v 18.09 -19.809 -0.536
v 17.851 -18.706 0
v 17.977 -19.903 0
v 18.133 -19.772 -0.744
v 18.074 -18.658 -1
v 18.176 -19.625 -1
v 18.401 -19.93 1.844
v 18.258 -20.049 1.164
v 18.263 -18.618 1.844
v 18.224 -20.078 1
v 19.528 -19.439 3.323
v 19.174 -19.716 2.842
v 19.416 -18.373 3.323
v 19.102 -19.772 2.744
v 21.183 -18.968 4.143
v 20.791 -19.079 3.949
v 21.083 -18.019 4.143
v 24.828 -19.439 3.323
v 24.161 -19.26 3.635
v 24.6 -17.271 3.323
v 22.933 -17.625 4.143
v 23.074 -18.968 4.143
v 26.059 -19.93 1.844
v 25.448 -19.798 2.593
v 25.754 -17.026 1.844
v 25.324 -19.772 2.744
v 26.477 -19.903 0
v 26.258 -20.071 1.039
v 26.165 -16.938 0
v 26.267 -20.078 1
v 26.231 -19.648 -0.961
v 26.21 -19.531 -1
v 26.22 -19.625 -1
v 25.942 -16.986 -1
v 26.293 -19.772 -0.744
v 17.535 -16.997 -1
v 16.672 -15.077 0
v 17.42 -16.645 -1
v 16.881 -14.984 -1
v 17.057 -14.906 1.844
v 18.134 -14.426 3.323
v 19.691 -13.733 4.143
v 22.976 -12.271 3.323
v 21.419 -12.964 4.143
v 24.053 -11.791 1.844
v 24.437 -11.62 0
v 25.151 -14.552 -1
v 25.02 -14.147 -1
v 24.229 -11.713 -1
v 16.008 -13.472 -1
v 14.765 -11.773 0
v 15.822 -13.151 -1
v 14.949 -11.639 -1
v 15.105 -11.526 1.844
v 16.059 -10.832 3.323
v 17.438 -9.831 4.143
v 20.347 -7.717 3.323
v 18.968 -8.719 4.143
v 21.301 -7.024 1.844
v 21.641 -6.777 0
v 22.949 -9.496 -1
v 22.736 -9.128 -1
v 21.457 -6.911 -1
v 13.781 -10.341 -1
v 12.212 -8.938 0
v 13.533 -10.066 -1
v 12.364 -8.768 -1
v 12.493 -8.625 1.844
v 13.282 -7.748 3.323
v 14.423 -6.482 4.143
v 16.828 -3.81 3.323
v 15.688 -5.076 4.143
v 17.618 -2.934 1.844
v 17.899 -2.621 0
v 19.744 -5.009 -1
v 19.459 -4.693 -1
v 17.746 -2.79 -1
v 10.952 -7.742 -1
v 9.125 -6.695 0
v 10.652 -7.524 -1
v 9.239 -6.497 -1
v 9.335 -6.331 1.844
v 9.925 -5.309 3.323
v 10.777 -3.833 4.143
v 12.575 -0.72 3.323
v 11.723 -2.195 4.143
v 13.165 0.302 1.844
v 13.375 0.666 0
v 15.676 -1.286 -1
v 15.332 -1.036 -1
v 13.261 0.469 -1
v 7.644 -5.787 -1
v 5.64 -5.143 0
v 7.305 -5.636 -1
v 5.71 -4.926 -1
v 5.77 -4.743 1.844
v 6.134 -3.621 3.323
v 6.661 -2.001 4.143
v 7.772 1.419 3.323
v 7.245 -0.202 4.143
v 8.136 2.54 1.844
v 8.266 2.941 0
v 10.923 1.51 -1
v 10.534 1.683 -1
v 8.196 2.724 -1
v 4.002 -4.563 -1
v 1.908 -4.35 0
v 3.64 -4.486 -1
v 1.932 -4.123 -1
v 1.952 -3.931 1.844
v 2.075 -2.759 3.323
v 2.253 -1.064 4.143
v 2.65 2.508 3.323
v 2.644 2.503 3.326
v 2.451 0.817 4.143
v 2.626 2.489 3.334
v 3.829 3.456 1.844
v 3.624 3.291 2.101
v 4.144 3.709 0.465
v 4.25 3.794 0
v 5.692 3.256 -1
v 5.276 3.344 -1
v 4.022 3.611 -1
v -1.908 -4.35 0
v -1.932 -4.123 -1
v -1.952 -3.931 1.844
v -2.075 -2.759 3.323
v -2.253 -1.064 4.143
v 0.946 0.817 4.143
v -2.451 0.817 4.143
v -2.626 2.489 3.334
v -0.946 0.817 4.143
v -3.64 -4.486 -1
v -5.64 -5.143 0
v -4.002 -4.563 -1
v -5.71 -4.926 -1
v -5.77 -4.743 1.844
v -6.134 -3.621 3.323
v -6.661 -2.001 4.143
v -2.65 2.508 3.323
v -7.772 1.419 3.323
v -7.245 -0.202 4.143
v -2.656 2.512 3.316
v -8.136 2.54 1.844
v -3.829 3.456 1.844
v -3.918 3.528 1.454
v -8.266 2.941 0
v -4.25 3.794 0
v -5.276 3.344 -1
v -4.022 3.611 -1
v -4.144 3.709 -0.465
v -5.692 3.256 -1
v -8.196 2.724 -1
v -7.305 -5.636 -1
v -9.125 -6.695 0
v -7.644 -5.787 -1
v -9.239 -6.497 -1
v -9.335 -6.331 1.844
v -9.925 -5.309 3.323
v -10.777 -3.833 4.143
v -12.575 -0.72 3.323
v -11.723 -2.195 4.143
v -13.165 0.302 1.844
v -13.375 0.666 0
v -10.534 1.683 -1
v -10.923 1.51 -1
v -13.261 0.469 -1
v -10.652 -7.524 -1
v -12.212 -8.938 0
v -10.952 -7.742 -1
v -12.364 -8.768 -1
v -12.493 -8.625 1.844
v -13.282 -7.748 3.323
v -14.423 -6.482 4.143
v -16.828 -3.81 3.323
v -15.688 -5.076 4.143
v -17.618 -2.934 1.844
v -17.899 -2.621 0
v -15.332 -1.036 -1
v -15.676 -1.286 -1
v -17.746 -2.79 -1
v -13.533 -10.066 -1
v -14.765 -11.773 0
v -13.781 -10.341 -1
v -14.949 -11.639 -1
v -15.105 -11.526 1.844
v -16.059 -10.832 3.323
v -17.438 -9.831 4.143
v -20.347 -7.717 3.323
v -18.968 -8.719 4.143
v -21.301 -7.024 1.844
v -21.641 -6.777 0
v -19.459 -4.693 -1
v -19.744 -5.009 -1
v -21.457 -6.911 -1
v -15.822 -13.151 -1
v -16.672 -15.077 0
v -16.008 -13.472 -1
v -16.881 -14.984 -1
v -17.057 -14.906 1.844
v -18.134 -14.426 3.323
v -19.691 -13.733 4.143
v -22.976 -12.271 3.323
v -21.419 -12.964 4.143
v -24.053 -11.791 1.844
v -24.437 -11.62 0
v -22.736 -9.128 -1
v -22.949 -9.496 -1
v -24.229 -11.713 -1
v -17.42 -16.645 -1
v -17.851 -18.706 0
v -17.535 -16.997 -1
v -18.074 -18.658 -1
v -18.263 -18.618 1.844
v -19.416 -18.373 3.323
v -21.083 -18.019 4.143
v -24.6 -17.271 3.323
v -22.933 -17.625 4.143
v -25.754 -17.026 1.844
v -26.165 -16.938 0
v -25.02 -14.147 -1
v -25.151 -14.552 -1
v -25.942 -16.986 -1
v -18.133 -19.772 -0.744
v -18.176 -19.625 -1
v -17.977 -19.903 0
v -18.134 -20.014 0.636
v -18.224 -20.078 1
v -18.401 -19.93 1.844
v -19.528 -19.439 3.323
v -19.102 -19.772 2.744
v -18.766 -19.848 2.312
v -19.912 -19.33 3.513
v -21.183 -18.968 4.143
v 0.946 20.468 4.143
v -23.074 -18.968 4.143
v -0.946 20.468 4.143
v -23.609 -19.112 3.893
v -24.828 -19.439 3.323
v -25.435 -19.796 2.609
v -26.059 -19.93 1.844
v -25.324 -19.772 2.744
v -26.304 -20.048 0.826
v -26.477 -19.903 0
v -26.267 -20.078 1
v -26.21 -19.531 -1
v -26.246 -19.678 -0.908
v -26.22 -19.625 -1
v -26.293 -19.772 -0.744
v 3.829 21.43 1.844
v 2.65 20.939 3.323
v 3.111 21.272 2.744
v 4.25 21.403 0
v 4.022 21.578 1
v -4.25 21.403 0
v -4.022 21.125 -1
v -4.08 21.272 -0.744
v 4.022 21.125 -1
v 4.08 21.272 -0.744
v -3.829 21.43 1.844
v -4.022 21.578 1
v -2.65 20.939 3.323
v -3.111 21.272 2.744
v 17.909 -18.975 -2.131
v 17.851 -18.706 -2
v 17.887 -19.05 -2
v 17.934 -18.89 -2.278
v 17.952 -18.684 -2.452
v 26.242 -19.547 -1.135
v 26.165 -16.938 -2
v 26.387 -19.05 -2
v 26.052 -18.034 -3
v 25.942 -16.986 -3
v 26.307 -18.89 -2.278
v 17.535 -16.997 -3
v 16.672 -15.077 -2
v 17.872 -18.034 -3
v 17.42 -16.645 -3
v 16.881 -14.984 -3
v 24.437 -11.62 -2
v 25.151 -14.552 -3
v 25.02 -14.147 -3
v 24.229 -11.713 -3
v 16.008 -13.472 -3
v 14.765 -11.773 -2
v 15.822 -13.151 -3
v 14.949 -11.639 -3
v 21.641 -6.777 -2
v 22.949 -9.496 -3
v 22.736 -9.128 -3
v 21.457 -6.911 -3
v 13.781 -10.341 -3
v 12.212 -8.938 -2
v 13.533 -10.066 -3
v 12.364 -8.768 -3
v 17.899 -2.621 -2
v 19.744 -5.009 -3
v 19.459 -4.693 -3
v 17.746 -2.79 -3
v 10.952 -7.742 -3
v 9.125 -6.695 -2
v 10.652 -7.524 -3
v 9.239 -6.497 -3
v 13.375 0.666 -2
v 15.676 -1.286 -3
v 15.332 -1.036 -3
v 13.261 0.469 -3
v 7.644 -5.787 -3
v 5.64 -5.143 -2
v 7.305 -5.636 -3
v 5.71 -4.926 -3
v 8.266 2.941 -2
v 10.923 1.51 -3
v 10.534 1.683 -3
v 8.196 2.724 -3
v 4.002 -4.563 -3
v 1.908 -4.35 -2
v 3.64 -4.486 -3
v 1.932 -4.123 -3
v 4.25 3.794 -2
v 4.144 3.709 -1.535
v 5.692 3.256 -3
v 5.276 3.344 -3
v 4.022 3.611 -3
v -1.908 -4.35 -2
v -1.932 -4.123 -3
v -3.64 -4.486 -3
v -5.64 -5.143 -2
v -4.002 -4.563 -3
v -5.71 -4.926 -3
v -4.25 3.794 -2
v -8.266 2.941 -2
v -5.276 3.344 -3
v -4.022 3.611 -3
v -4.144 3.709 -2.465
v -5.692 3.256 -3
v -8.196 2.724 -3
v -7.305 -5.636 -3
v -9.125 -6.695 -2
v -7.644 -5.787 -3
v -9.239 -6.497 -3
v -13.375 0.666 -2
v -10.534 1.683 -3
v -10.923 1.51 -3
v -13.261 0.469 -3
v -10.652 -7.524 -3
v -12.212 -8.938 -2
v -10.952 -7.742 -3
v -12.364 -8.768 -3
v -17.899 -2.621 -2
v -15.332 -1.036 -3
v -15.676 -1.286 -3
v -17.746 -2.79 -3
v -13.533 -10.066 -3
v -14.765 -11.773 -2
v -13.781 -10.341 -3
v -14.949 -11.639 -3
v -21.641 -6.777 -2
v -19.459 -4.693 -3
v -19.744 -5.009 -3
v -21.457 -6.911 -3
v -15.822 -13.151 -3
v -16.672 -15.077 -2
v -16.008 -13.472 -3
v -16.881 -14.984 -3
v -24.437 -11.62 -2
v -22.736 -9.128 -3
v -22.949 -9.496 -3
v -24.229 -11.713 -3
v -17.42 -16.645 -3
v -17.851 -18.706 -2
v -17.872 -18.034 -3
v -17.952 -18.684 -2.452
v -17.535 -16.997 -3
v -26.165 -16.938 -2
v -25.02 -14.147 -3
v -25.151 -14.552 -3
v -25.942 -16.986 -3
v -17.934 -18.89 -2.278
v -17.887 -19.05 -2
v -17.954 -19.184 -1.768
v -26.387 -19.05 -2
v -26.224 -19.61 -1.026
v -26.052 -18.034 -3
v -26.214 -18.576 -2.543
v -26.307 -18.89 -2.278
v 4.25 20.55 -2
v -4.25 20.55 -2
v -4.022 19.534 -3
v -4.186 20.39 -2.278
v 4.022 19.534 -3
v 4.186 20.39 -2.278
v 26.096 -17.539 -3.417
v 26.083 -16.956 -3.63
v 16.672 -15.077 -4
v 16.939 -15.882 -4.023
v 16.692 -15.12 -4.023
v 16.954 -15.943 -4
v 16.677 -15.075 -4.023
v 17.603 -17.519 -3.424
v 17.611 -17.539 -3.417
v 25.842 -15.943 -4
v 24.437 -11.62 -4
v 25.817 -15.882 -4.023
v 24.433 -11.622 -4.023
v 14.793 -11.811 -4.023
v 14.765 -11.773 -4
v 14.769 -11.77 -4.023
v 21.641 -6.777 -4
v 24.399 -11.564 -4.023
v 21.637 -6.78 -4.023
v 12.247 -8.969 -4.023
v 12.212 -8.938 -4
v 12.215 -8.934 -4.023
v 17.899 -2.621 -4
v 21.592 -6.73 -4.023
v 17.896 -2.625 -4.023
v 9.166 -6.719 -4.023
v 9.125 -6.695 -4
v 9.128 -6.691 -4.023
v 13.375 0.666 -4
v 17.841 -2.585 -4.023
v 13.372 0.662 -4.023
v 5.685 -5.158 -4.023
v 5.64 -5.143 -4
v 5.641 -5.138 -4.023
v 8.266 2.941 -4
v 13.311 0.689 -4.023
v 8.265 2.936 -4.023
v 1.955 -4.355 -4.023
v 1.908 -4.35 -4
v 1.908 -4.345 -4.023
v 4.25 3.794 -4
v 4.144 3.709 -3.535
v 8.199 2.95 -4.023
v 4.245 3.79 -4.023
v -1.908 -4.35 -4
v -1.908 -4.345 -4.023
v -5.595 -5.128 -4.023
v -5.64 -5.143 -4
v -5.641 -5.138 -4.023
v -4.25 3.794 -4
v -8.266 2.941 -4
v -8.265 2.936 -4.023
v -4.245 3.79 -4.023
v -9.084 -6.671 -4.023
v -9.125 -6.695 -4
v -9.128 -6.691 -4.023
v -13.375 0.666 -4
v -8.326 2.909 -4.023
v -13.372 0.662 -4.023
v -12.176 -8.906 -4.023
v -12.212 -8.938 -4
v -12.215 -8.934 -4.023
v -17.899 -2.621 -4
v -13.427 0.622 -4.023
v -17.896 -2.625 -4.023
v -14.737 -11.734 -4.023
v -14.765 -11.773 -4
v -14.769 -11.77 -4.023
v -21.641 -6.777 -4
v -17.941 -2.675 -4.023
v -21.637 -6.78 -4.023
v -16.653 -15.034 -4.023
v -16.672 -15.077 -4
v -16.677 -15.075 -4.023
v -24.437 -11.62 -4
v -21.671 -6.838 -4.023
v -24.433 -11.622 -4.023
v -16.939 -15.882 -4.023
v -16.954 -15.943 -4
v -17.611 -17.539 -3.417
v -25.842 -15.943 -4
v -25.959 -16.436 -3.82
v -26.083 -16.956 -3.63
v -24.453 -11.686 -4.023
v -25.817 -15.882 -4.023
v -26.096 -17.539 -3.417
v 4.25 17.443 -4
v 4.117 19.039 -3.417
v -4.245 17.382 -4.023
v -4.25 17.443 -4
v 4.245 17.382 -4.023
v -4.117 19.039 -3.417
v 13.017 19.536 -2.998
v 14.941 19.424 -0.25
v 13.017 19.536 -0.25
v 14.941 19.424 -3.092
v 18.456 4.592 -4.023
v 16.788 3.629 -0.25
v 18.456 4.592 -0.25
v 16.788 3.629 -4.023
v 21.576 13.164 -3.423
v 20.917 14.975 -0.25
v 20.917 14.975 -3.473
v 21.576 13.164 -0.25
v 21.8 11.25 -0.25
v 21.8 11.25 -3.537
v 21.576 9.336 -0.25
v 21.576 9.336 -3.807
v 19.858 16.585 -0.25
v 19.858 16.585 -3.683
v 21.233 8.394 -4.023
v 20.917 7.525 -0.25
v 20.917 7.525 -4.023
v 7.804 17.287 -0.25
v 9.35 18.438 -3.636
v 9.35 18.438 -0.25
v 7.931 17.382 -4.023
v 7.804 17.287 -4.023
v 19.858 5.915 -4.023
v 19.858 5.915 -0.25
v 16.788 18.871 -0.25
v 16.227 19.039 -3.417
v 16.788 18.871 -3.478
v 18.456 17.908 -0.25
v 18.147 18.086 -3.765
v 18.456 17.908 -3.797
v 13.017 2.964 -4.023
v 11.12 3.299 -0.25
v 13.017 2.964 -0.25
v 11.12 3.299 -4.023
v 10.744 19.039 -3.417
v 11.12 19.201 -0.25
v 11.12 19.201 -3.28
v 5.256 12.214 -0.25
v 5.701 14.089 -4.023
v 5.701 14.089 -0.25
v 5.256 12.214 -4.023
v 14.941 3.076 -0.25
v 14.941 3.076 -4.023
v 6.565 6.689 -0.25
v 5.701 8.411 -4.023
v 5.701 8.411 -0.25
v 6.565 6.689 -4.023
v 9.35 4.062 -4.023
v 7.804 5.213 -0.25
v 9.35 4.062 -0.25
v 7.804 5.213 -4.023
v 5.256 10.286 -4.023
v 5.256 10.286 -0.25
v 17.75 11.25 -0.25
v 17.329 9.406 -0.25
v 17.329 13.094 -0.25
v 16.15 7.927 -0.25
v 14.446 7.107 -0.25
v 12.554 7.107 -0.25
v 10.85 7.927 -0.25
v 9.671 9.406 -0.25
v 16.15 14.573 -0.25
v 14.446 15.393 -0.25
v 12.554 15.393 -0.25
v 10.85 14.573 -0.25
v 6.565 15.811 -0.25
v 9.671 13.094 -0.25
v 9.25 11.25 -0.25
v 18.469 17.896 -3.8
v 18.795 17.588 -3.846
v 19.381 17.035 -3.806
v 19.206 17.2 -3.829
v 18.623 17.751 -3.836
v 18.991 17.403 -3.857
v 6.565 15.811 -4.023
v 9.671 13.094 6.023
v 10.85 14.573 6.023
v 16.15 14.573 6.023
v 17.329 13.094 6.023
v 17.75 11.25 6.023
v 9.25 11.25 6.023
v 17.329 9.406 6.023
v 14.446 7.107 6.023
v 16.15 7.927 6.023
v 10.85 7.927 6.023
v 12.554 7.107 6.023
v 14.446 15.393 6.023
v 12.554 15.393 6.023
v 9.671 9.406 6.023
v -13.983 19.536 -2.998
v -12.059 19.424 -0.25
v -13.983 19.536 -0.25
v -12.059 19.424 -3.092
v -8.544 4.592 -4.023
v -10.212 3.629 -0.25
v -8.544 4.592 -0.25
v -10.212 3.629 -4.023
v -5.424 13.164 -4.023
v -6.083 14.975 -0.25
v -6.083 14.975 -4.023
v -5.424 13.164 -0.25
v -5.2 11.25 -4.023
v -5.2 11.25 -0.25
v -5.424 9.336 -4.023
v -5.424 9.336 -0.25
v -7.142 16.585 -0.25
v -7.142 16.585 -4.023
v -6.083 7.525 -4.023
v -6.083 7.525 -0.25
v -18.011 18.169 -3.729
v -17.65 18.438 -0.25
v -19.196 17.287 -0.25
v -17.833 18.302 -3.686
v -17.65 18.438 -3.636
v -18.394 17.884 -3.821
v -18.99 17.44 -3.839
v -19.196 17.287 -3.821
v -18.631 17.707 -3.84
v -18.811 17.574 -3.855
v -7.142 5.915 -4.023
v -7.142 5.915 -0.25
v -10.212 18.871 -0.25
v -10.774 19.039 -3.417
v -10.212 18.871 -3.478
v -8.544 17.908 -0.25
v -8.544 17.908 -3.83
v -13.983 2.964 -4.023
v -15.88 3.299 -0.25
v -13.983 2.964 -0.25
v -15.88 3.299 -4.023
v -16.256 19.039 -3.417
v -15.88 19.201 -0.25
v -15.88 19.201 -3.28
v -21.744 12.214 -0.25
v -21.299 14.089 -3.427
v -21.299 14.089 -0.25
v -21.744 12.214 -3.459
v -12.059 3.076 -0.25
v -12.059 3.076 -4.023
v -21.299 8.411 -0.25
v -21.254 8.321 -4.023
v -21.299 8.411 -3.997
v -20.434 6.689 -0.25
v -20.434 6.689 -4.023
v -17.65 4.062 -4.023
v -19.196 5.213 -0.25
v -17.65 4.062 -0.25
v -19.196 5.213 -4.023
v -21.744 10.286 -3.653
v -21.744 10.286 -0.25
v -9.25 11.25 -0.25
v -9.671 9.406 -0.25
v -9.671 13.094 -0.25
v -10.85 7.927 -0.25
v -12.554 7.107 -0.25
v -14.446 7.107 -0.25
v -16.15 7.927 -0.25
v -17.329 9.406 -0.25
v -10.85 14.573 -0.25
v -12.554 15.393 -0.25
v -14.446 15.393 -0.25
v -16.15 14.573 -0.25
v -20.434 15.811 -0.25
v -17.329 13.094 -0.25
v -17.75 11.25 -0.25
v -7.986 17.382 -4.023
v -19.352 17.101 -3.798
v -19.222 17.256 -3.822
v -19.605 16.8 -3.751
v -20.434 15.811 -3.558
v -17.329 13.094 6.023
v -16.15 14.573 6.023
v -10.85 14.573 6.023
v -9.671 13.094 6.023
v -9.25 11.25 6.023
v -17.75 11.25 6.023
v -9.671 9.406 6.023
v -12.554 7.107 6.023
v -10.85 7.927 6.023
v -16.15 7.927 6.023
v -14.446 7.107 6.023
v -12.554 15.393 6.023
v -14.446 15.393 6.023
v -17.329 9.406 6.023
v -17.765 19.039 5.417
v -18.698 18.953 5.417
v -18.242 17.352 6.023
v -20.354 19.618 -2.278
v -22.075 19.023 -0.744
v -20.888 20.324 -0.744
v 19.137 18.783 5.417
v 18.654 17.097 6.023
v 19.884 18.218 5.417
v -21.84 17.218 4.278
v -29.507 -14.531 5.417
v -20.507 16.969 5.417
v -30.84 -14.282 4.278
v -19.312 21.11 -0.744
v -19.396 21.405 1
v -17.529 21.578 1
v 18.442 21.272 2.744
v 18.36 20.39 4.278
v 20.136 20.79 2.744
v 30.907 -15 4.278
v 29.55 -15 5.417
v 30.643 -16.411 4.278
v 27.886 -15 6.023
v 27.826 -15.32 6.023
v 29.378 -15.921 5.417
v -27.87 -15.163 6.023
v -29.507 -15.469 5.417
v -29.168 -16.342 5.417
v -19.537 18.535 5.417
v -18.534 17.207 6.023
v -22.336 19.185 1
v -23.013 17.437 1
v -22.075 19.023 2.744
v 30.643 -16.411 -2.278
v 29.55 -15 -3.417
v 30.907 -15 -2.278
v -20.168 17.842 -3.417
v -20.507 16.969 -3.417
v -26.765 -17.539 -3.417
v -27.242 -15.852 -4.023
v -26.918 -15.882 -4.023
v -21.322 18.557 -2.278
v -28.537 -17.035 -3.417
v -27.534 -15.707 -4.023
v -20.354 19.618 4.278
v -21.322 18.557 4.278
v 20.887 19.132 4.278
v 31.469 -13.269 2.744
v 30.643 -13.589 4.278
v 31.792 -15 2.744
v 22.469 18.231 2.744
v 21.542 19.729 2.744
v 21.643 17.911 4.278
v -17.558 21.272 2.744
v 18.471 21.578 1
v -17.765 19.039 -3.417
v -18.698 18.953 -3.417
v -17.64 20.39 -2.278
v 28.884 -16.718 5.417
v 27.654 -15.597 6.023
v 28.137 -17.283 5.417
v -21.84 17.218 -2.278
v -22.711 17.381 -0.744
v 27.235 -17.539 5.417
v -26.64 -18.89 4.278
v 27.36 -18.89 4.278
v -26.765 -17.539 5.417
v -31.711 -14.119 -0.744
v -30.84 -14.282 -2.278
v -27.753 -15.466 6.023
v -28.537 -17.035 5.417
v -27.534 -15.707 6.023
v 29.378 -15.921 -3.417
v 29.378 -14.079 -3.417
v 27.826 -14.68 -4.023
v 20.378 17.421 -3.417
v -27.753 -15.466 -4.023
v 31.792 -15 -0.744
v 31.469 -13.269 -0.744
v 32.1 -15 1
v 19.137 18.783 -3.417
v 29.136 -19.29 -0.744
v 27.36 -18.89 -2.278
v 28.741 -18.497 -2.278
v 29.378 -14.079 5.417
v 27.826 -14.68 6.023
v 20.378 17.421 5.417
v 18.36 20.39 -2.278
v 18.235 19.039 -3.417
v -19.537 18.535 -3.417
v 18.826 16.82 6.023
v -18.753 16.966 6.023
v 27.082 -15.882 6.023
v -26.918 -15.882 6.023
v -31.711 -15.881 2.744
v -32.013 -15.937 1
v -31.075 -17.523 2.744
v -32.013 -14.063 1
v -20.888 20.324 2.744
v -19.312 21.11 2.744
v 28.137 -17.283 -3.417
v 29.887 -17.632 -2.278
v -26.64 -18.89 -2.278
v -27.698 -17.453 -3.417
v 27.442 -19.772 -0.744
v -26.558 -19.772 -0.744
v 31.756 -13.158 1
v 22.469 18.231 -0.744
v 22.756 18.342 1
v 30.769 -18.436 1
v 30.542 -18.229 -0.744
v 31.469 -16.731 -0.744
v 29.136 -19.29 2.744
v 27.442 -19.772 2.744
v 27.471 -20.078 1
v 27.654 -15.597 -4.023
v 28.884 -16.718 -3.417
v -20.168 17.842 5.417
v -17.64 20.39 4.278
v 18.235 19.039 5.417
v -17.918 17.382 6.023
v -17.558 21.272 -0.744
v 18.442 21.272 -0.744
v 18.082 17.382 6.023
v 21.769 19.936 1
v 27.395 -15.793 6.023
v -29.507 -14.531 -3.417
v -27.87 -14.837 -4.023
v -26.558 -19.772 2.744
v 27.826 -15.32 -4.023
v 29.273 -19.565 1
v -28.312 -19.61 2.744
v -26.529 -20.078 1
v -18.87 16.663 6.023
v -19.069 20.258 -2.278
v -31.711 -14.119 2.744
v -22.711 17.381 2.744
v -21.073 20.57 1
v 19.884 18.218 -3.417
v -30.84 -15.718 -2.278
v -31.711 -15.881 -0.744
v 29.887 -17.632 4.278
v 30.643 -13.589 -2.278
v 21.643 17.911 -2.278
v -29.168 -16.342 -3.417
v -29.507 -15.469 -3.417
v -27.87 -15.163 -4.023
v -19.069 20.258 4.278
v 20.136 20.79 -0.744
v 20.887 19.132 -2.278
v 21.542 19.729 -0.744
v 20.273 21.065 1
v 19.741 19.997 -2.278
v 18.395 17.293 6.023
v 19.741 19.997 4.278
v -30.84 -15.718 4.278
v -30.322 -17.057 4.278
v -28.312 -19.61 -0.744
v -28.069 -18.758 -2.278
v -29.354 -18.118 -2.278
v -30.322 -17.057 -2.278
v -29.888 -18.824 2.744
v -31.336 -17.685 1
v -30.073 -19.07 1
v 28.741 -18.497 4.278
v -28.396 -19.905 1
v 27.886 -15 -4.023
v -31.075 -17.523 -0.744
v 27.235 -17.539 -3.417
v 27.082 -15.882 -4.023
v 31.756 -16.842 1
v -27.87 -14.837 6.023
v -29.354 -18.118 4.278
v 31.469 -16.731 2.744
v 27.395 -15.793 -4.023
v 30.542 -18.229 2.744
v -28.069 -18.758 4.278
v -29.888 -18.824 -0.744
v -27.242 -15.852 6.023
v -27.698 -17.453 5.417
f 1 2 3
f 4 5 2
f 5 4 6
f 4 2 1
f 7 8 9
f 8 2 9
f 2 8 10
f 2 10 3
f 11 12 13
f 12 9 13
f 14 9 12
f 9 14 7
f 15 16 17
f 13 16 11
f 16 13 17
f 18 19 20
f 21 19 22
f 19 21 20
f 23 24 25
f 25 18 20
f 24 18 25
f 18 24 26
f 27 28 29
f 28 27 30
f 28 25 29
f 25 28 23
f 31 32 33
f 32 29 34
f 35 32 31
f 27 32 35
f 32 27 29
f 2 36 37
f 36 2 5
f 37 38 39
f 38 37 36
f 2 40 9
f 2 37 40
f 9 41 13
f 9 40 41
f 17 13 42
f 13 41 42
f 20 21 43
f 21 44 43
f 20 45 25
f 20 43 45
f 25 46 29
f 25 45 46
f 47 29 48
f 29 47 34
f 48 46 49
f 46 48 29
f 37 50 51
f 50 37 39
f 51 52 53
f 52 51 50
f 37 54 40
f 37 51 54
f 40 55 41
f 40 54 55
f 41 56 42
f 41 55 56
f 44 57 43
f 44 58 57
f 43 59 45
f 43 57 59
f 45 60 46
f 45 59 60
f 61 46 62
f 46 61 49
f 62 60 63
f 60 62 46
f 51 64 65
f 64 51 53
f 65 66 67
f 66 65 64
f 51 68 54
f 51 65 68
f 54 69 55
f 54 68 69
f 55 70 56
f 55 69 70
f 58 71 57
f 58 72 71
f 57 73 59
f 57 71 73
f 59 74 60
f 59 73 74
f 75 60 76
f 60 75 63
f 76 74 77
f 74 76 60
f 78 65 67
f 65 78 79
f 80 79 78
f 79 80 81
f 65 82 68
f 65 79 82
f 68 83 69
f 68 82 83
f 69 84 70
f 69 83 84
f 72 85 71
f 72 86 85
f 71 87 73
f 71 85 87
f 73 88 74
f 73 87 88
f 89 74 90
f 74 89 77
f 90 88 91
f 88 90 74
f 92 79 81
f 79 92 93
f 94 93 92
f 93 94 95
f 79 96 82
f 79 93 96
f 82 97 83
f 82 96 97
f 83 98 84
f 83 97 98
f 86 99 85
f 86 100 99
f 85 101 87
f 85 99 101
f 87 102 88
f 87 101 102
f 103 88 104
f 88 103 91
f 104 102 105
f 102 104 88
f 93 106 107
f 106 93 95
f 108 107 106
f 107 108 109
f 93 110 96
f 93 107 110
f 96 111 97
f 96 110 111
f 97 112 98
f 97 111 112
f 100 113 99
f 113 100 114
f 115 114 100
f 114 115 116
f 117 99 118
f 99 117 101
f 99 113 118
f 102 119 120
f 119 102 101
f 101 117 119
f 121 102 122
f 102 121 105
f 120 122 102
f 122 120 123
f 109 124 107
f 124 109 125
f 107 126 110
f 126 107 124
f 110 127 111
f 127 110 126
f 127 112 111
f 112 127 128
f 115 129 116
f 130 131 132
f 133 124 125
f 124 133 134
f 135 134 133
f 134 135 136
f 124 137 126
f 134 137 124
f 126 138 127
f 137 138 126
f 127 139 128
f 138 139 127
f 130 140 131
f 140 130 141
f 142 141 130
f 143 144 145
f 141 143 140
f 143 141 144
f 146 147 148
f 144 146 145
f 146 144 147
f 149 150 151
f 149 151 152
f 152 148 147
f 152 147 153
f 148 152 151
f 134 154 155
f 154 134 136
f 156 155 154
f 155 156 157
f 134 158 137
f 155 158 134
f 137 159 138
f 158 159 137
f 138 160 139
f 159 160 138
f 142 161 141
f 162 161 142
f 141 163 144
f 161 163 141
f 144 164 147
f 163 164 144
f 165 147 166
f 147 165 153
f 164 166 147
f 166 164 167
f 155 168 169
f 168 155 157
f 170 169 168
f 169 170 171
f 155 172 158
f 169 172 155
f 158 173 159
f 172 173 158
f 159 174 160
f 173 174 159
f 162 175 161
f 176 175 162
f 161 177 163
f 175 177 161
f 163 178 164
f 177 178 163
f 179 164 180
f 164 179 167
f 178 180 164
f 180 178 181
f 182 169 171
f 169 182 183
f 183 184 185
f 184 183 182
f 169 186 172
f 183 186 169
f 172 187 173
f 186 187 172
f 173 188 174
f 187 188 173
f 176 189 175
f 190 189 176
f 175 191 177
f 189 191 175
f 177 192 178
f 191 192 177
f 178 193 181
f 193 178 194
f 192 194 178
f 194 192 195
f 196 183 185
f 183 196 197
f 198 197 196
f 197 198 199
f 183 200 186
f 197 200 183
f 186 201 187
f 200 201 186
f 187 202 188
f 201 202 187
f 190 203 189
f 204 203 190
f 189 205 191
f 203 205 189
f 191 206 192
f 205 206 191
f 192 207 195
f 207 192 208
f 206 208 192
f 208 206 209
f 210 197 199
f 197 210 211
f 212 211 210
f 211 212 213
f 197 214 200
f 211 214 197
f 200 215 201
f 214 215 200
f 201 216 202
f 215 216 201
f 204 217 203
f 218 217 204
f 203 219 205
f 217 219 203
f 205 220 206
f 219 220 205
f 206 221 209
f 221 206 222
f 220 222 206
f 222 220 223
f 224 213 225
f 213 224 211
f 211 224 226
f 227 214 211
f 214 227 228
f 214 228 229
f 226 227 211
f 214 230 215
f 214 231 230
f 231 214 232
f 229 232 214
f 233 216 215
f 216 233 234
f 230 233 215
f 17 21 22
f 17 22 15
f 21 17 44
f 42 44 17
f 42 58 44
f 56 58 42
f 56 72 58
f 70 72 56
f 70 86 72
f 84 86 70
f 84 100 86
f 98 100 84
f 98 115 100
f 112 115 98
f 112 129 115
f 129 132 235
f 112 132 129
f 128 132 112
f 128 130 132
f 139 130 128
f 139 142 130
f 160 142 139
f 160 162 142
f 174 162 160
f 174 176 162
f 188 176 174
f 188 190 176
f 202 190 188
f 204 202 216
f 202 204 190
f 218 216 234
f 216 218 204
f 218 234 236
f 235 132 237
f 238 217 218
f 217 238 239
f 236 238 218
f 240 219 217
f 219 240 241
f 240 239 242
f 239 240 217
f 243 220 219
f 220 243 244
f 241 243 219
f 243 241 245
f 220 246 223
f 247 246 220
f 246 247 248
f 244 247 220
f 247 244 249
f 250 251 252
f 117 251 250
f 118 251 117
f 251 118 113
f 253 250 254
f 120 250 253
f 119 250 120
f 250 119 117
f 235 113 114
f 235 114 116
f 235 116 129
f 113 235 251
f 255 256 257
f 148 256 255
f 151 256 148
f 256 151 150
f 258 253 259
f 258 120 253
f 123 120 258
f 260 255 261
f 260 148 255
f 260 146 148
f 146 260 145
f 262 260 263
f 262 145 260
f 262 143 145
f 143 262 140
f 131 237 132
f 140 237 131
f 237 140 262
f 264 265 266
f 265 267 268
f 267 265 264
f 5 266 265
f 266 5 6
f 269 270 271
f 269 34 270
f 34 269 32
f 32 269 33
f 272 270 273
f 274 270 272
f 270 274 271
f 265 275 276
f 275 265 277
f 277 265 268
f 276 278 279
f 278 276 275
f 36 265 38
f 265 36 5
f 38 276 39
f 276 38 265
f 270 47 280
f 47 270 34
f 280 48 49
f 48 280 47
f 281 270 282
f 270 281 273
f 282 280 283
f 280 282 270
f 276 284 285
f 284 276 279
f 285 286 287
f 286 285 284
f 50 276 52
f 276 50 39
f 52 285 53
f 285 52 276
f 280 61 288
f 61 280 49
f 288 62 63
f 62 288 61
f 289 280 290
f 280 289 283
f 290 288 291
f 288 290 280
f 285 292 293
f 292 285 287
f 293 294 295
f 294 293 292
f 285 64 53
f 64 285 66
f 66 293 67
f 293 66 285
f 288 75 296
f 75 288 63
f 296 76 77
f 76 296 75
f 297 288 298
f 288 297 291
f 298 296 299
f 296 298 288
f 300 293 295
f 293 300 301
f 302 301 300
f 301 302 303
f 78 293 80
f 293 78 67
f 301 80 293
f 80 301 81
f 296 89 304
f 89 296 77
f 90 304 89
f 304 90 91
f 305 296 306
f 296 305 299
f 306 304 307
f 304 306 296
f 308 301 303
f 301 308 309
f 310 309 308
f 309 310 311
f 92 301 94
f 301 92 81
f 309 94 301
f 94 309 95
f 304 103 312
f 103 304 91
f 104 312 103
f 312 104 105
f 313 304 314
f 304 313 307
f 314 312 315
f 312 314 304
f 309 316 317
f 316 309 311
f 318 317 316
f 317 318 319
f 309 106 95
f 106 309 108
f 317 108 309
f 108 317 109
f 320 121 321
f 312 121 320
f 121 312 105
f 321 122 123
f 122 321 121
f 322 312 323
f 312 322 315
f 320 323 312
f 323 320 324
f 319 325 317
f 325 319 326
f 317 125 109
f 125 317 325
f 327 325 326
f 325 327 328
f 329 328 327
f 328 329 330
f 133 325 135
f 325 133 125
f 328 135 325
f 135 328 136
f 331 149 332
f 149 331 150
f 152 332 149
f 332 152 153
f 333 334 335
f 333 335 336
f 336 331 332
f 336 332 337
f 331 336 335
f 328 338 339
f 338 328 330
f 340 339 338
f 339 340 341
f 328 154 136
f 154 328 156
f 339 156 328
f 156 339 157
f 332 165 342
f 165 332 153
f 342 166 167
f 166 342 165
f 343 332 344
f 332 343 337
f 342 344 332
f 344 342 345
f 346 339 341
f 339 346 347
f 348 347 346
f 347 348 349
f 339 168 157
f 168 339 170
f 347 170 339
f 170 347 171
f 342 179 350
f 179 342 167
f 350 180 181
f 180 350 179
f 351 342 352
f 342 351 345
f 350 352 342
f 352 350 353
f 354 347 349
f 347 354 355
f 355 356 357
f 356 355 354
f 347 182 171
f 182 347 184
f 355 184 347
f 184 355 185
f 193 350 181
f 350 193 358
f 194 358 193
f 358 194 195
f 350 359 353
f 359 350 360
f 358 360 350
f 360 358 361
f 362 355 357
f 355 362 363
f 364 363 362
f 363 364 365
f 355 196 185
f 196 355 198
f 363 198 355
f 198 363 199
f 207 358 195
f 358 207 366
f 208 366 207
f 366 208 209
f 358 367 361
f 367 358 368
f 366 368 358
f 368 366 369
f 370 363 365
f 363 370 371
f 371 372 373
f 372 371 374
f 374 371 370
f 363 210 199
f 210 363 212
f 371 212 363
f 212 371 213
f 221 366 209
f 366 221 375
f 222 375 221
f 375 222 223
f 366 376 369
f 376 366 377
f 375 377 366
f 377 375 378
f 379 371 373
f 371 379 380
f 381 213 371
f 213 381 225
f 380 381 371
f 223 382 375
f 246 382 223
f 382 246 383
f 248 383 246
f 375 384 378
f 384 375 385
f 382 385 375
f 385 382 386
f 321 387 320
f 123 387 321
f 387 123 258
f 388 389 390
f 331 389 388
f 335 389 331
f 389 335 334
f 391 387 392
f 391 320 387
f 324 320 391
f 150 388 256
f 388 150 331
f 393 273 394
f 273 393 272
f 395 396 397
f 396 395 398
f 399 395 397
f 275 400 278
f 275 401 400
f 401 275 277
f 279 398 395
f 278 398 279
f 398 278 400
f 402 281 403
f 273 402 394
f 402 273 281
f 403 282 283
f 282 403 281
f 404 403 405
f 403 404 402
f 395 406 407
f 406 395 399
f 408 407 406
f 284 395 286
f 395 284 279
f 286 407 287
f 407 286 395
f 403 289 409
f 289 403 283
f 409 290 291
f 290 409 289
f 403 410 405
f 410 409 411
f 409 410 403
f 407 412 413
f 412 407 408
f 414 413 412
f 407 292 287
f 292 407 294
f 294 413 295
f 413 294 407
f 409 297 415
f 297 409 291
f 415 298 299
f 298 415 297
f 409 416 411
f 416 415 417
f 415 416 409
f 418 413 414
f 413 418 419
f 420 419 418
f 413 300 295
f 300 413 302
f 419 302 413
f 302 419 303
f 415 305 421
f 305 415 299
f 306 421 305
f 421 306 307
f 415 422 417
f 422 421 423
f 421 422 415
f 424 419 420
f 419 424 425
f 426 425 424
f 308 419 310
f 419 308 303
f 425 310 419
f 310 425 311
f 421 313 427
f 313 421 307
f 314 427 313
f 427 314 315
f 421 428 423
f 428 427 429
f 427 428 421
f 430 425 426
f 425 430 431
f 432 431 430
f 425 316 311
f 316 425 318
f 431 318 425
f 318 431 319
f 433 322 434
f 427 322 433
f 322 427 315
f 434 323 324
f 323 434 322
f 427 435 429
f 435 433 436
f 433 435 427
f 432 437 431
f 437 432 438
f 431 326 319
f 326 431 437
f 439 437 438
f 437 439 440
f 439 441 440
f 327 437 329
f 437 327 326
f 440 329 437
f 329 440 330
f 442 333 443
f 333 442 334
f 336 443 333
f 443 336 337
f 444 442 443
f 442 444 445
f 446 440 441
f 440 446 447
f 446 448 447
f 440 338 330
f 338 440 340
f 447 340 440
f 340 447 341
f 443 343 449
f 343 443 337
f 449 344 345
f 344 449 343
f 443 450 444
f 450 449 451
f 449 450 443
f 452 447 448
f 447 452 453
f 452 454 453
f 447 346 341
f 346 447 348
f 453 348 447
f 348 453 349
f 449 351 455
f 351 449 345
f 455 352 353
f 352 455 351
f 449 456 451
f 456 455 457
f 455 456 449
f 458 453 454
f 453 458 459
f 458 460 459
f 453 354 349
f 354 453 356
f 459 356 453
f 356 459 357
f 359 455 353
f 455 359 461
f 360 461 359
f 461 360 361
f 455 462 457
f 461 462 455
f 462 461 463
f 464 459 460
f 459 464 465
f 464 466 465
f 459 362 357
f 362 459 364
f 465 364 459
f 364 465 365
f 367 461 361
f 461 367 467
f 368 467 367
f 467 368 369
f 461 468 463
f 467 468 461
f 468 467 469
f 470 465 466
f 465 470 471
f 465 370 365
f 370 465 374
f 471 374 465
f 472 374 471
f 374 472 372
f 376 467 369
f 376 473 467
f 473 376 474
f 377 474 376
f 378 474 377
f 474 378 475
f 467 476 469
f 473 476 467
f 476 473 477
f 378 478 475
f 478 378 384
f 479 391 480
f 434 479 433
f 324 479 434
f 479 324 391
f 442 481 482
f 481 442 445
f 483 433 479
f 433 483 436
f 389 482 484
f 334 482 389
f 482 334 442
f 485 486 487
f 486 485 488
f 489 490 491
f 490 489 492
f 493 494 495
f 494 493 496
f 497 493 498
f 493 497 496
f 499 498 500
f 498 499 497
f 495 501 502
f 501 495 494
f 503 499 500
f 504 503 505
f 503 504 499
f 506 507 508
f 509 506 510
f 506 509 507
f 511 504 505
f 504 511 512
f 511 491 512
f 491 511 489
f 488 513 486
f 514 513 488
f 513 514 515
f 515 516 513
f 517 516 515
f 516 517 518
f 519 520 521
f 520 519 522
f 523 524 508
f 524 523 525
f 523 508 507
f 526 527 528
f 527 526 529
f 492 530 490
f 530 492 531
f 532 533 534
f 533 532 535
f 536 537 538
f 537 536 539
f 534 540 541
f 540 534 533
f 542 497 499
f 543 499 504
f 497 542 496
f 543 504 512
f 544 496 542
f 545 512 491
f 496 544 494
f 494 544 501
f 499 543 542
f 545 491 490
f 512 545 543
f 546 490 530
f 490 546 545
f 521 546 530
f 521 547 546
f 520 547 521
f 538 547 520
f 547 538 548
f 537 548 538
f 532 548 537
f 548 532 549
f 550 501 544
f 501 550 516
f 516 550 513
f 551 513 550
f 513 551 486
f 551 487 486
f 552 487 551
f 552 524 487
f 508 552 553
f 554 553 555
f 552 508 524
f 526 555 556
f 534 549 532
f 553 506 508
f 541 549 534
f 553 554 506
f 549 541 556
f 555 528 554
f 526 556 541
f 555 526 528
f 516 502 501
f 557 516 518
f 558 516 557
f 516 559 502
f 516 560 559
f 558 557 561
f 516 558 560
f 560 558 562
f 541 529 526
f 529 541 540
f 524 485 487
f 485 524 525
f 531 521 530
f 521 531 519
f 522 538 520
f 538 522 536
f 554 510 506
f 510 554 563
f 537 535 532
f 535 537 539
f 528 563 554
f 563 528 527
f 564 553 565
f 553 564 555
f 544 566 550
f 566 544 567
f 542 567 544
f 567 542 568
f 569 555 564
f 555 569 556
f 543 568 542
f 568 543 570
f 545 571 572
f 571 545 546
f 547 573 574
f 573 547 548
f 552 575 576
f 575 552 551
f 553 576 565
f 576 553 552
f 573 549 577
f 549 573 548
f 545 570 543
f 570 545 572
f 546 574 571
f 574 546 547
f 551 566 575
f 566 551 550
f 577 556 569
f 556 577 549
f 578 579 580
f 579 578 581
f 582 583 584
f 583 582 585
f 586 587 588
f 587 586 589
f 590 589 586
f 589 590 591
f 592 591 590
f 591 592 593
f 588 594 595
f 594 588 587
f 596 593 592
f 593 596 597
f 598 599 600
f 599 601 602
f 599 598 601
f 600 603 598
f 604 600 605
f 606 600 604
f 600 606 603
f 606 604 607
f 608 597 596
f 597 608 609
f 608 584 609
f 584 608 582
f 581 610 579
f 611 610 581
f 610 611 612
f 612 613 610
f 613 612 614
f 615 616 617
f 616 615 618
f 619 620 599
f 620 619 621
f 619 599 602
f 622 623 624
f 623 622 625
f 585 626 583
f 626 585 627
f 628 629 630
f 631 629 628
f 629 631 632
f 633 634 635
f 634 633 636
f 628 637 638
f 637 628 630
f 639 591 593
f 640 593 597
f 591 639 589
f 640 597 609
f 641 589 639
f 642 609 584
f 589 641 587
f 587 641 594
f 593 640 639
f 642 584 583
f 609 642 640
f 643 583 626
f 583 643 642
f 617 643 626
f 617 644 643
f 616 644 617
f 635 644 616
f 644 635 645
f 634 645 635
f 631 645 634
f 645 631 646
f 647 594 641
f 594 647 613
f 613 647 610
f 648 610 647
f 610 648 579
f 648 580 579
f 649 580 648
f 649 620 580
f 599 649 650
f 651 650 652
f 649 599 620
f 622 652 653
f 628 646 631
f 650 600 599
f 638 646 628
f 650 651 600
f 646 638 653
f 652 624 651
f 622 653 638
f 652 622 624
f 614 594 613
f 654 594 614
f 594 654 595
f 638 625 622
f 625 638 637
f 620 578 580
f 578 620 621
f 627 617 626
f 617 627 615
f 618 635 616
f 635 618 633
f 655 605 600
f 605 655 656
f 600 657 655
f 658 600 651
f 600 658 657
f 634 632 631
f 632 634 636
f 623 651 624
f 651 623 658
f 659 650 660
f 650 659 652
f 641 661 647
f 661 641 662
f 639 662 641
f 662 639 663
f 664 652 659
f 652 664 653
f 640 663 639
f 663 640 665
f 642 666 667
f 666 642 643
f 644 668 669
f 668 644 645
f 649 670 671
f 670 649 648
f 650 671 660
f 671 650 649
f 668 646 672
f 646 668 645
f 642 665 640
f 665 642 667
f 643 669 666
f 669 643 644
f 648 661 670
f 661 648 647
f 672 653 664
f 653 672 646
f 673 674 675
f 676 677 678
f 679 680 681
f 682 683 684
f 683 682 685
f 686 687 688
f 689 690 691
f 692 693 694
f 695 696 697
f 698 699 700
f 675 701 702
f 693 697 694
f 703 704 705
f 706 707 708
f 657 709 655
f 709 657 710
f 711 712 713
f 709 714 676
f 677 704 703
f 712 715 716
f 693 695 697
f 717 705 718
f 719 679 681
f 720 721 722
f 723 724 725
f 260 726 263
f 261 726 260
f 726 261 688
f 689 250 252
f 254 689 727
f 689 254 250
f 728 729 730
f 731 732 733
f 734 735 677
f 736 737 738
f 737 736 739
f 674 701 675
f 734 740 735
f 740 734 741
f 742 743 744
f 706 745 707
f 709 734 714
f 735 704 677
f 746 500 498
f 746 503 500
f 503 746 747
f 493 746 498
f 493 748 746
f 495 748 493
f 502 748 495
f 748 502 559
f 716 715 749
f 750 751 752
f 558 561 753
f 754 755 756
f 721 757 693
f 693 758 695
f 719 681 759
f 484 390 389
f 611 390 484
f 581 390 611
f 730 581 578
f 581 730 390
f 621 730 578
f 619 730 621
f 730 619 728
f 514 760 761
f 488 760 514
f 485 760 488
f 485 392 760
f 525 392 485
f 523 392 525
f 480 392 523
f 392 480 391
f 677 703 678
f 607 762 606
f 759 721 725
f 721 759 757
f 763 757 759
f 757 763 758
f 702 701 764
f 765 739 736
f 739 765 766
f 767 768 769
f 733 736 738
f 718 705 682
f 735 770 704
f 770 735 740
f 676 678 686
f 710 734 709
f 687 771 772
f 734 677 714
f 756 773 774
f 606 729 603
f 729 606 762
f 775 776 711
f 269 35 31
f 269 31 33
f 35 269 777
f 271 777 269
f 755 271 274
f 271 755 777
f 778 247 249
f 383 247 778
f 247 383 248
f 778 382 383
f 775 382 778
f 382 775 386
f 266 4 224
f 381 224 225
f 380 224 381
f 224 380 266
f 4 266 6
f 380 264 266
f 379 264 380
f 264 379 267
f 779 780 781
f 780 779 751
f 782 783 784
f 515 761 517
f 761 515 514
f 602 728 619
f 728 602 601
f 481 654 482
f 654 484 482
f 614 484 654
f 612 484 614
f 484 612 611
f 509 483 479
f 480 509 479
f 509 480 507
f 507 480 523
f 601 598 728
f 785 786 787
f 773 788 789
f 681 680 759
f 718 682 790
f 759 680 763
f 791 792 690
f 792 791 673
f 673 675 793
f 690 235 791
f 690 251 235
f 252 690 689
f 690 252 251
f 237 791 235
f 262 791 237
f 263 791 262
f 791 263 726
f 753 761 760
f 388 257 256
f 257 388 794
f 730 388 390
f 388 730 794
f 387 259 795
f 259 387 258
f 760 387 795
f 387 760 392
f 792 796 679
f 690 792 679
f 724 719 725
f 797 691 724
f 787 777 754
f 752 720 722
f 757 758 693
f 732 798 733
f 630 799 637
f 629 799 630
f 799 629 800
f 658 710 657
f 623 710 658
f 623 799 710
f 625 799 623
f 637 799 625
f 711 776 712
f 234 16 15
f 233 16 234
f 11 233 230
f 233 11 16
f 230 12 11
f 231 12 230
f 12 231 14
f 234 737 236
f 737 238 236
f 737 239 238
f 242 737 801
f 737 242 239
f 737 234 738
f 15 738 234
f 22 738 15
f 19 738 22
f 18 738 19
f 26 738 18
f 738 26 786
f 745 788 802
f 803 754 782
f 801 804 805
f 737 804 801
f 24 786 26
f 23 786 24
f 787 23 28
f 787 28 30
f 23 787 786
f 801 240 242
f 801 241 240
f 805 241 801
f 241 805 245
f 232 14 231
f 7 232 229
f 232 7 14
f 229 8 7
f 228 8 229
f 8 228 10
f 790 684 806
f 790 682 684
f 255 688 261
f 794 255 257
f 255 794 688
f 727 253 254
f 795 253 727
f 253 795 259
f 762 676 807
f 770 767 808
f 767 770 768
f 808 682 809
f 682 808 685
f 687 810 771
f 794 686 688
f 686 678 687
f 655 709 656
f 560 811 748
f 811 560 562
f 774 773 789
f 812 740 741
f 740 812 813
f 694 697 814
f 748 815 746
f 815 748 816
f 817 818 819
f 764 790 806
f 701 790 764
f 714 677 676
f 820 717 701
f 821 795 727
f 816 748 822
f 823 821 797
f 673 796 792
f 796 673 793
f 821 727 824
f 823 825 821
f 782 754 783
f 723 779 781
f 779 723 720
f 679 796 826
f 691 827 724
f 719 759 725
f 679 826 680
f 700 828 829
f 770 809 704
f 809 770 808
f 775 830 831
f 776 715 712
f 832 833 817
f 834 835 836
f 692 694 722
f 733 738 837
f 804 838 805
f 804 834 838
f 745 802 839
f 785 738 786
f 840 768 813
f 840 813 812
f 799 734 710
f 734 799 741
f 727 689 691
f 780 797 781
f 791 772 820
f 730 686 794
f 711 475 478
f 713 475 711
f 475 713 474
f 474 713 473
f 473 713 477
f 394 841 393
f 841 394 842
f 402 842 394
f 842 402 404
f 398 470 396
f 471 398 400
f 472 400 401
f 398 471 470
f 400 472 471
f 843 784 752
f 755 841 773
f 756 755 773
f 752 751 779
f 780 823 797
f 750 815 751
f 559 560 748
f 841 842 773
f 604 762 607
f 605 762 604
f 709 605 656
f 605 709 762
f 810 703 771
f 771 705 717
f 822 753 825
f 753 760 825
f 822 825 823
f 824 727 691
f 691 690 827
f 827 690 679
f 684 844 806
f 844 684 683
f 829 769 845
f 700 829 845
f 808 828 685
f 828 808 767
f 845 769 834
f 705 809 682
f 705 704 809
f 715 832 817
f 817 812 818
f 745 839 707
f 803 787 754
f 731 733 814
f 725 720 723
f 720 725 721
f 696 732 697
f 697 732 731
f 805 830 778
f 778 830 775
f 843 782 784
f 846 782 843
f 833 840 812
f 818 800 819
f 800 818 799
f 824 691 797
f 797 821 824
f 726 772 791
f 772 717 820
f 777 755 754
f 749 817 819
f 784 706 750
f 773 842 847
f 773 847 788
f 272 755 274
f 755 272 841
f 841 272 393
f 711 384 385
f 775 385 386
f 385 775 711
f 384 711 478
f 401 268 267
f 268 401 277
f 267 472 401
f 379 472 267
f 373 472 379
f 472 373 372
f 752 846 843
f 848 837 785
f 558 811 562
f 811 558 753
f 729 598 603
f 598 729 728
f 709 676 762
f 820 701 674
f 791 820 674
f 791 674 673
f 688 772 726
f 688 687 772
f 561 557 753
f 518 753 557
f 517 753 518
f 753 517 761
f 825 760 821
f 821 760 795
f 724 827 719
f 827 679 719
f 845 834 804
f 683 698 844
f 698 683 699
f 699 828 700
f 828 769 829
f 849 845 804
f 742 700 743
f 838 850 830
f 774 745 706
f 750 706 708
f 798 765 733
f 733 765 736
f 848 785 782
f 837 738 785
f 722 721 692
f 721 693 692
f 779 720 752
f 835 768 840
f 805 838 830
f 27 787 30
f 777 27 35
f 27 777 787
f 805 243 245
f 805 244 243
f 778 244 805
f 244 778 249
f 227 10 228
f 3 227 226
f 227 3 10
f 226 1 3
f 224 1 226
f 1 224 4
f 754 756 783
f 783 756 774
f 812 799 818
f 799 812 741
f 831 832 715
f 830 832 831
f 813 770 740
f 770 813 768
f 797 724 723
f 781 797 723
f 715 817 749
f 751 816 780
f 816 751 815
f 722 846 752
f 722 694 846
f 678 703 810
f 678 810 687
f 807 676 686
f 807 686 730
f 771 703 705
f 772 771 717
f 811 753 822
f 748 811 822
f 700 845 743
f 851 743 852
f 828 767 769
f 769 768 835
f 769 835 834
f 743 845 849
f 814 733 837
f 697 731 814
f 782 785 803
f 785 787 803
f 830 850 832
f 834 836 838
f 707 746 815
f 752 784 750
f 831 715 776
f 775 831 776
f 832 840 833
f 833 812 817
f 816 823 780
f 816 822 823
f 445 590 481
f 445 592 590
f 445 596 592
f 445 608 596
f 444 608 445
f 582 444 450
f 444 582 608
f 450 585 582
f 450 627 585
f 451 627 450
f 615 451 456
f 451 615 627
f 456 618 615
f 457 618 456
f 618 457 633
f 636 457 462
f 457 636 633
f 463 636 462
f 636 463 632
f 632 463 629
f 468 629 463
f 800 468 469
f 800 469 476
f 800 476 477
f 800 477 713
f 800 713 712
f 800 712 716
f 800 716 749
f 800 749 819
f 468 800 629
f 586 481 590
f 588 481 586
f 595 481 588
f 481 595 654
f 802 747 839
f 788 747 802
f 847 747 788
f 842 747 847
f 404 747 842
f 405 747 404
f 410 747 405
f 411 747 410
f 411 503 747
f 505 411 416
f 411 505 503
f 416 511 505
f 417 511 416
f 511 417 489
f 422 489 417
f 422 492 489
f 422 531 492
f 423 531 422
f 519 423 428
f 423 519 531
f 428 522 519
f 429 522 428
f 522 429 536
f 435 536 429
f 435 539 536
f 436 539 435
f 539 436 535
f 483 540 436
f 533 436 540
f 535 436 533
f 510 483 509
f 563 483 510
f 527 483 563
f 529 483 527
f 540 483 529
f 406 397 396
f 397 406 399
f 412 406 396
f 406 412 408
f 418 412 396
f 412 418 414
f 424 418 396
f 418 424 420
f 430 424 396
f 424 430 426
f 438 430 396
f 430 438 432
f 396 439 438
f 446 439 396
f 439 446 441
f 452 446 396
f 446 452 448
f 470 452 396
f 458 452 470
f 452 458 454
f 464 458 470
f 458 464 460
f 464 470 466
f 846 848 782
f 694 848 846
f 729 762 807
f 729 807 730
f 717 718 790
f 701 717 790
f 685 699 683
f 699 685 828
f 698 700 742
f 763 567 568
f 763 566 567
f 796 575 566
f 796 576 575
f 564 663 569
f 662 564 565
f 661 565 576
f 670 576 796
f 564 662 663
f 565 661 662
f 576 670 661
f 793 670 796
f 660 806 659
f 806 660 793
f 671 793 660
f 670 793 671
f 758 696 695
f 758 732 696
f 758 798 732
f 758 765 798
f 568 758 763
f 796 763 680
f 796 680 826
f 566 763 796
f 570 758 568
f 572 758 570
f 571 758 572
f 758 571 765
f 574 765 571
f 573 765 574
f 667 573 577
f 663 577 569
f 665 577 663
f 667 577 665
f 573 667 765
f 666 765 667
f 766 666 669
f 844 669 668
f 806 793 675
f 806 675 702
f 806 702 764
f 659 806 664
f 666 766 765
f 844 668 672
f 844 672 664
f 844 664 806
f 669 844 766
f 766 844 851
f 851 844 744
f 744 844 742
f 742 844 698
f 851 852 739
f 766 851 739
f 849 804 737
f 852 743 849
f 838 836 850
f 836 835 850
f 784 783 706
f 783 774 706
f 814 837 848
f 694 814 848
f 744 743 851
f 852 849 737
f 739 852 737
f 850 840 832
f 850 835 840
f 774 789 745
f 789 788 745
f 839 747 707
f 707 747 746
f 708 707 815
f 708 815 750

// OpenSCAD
magnet_diam   = 16.6;
magnet_height =  4;
magnet_cap_d  =  8.5;
magnet_cap_h  =  6.5;
tube_diam     =  8.5;
tube_length   = 40;
tube_y        = 45;

module magnet() {
    cylinder( d = magnet_diam, h = magnet_height );
    translate([ 0, 0, magnet_height ])
        cylinder( d = magnet_cap_d, h = magnet_cap_h );
}

module tubing() {
    rotate_extrude(angle = 180) {
        translate([tube_y / 2, 0, 0] ) circle( d = tube_diam );
    }
    translate([0, tube_length+0.5*tube_y, 0]) rotate([90, 0, 0])
        cylinder( d = tube_diam, h = tube_length );
}

module case() {
    hull() {
    translate([  0.6*tube_y, 0*tube_y, 0]) sphere( d = 1.2*tube_diam );
    translate([ -0.6*tube_y, 0*tube_y, 0]) sphere( d = 1.2*tube_diam );
    translate([  0.4*tube_y, 0.7*tube_y, 0]) sphere( d = 1.2*tube_diam );
    translate([ -0.4*tube_y, 0.7*tube_y, 0]) sphere( d = 1.2*tube_diam );
    }
}

difference() {
    translate([0, -tube_y/3, 1]) case();

    translate([ 0, -0.5*tube_y, 0 ]) tubing();
    translate([ 0, -0.5*tube_y, -2 ]) tubing();
    translate([ 0, -0.5*tube_y, -4 ]) tubing();
    
    translate([  0.3*tube_y, 0.25 * tube_y, -0.5*tube_diam ]) magnet();
    translate([ -0.3*tube_y, 0.25 * tube_y, -0.5*tube_diam ]) magnet();
}
